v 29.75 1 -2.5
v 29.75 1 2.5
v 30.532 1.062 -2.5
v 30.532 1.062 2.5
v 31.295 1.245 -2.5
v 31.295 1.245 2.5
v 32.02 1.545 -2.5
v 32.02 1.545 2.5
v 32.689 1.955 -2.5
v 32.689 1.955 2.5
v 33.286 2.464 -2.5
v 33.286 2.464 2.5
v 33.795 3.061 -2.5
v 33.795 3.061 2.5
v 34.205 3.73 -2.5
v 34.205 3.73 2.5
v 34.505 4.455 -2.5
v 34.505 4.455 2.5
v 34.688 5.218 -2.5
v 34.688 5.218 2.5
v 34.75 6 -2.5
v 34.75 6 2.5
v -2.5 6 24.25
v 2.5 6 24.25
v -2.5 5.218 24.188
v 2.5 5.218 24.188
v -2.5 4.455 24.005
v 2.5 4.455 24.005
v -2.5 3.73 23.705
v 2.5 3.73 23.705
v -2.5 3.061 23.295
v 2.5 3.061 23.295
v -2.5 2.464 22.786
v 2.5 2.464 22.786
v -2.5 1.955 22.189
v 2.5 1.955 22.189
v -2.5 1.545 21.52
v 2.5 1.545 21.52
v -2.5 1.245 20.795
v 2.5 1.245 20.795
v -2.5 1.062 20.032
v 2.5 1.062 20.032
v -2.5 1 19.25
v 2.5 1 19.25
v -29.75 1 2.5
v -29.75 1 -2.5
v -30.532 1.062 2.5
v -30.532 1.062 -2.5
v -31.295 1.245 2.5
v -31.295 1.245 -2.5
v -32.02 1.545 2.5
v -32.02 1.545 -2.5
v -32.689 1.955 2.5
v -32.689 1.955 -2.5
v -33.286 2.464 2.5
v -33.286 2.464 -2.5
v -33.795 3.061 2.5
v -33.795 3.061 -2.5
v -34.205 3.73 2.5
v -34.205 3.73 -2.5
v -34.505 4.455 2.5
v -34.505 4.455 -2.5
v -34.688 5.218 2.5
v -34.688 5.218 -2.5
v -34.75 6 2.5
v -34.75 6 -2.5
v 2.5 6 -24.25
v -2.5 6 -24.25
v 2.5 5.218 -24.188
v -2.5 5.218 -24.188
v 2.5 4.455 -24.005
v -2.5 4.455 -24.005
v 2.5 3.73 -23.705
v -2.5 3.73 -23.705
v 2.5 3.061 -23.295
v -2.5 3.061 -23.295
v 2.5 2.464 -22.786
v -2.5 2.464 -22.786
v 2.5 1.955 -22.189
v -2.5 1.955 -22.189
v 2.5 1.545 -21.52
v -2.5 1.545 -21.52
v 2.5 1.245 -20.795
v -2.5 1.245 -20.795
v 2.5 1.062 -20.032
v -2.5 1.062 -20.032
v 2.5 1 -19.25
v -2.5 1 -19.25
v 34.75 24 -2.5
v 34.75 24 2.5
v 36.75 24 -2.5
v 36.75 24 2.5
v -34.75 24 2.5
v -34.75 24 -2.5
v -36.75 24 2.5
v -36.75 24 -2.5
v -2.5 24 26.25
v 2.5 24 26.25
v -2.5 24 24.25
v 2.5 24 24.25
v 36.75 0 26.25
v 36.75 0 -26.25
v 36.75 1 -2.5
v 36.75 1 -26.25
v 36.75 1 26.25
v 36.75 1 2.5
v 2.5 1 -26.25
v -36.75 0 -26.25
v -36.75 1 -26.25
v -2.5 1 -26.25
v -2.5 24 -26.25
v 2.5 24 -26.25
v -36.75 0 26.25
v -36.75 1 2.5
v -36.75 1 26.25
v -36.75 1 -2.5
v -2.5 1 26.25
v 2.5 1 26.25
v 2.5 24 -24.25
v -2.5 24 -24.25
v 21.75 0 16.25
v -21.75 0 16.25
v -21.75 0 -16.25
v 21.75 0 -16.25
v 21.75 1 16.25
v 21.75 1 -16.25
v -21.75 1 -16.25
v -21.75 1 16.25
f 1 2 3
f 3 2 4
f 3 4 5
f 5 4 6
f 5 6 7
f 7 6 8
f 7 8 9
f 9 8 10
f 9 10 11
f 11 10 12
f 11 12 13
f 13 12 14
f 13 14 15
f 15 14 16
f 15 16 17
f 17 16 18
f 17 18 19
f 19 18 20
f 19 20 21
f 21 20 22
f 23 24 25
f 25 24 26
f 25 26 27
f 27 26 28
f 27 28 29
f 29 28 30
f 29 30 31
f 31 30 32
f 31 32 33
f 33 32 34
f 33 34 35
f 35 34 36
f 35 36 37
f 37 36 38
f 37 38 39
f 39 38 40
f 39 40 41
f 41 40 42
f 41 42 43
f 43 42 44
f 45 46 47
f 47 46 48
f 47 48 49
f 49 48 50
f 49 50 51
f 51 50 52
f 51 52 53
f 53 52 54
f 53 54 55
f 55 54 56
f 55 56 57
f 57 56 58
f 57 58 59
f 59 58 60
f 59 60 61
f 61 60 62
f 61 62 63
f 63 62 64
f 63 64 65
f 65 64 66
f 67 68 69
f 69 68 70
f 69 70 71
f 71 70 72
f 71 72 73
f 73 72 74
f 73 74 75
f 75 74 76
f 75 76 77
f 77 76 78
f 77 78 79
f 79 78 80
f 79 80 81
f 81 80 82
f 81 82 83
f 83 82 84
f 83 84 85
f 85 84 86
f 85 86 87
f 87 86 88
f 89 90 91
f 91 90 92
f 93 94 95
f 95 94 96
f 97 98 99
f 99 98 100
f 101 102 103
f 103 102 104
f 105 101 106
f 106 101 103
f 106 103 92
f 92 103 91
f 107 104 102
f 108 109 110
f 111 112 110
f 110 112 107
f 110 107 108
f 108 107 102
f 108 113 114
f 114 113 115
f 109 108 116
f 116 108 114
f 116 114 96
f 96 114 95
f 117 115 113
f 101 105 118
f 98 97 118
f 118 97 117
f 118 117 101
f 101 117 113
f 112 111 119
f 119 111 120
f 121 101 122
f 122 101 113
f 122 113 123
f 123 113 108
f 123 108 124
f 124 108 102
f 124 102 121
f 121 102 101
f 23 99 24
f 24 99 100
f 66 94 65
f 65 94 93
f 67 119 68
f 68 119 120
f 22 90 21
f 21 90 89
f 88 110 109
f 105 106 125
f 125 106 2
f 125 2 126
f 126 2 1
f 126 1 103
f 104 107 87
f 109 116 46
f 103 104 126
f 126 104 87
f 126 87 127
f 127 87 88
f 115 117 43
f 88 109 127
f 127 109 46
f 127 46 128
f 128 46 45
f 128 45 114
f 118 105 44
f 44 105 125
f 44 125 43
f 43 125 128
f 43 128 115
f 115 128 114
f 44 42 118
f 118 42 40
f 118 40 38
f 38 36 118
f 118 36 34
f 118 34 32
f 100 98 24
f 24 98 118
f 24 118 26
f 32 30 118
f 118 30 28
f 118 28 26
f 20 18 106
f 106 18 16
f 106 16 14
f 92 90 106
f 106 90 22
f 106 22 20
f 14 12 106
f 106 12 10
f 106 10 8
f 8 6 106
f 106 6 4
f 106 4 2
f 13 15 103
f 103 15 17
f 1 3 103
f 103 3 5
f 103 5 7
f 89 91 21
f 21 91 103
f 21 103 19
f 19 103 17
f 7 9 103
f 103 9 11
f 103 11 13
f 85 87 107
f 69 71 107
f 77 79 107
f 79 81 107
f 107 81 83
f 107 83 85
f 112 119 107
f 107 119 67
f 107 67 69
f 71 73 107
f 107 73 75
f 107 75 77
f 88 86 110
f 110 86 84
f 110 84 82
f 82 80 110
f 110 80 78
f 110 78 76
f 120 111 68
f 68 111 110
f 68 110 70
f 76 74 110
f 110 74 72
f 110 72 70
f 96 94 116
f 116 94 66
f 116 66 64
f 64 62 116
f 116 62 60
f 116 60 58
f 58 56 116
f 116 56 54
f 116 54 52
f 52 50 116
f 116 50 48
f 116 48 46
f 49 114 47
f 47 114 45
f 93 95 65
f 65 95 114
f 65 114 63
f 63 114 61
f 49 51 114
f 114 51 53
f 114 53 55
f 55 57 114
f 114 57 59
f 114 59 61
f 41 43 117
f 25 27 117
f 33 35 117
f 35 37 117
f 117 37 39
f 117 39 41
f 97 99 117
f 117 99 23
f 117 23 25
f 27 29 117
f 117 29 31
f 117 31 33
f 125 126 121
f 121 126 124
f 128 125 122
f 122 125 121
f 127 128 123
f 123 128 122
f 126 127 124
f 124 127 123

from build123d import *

# Parameters (mm, degrees)
CROQUIS1_W                 = 73.5
CROQUIS1_H                 = 52.5
SALIENTE_EXTRUIR1_DEPTH    = 24
CORTAR_EXTRUIR1_START      = 24
CROQUIS4_W                 = 69.5
CROQUIS4_H                 = 48.5
CORTAR_EXTRUIR1_DEPTH      = 23
CORTAR_EXTRUIR4_START      = 24
CROQUIS5_W                 = 34.25
CROQUIS5_H                 = 23.75
CORTAR_EXTRUIR4_DEPTH      = 23
REDONDEO2_R                = 5
REDONDEO3_R                = 5
REDONDEO4_R                = 5
REDONDEO5_R                = 5
CORTAR_EXTRUIR5_DEPTH      = 52.143181364
CORTAR_EXTRUIR5_DEPTH_BACK = 52.143181364
CROQUIS6_W                 = 43.5
CROQUIS6_H                 = 32.5


with BuildPart() as part:
    # Croquis1 → Saliente-Extruir1 (new body)
    with BuildSketch(Plane(origin=(0, 0, 0), x_dir=(1, 0, 0), z_dir=(0, 1, 0))):
        Rectangle(CROQUIS1_W, CROQUIS1_H)
    extrude(amount=SALIENTE_EXTRUIR1_DEPTH)

    # Croquis4 → Cortar-Extruir1 (cut)
    with BuildSketch(Plane(origin=(0, 0, 0), x_dir=(1, 0, 0), z_dir=(0, 1, 0)).offset(CORTAR_EXTRUIR1_START)):
        Rectangle(CROQUIS4_W, CROQUIS4_H)
    extrude(amount=-CORTAR_EXTRUIR1_DEPTH, mode=Mode.SUBTRACT)

    # Croquis5 → Cortar-Extruir4 (cut)
    with BuildSketch(Plane(origin=(0, 0, 0), x_dir=(1, 0, 0), z_dir=(0, 1, 0)).offset(CORTAR_EXTRUIR4_START)):
        with Locations((19.625, 14.375)):
            Rectangle(CROQUIS5_W, CROQUIS5_H)
        with Locations((-19.625, 14.375)):
            Rectangle(CROQUIS5_W, CROQUIS5_H)
        with Locations((-19.625, -14.375)):
            Rectangle(CROQUIS5_W, CROQUIS5_H)
        with Locations((19.625, -14.375)):
            Rectangle(CROQUIS5_W, CROQUIS5_H)
    extrude(amount=-CORTAR_EXTRUIR4_DEPTH, mode=Mode.SUBTRACT)

    # Redondeo2
    redondeo2_edges = [part.edges().sort_by_distance(p)[0] for p in [
        (0, 1, -24.25),
    ]]
    fillet(redondeo2_edges, radius=REDONDEO2_R)

    # Redondeo3
    redondeo3_edges = [part.edges().sort_by_distance(p)[0] for p in [
        (-34.75, 1, 0),
    ]]
    fillet(redondeo3_edges, radius=REDONDEO3_R)

    # Redondeo4
    redondeo4_edges = [part.edges().sort_by_distance(p)[0] for p in [
        (0, 1, 24.25),
    ]]
    fillet(redondeo4_edges, radius=REDONDEO4_R)

    # Redondeo5
    redondeo5_edges = [part.edges().sort_by_distance(p)[0] for p in [
        (34.75, 1, 0),
    ]]
    fillet(redondeo5_edges, radius=REDONDEO5_R)

    # Croquis6 → Cortar-Extruir5 (cut, two sides: drawn at the far end of the back side and taken through both)
    with BuildSketch(Plane(origin=(0, 0, 0), x_dir=(1, 0, 0), z_dir=(0, 1, 0)).offset(-CORTAR_EXTRUIR5_DEPTH_BACK)):
        Rectangle(CROQUIS6_W, CROQUIS6_H)
    extrude(amount=CORTAR_EXTRUIR5_DEPTH + CORTAR_EXTRUIR5_DEPTH_BACK, mode=Mode.SUBTRACT)


solid = part.part
